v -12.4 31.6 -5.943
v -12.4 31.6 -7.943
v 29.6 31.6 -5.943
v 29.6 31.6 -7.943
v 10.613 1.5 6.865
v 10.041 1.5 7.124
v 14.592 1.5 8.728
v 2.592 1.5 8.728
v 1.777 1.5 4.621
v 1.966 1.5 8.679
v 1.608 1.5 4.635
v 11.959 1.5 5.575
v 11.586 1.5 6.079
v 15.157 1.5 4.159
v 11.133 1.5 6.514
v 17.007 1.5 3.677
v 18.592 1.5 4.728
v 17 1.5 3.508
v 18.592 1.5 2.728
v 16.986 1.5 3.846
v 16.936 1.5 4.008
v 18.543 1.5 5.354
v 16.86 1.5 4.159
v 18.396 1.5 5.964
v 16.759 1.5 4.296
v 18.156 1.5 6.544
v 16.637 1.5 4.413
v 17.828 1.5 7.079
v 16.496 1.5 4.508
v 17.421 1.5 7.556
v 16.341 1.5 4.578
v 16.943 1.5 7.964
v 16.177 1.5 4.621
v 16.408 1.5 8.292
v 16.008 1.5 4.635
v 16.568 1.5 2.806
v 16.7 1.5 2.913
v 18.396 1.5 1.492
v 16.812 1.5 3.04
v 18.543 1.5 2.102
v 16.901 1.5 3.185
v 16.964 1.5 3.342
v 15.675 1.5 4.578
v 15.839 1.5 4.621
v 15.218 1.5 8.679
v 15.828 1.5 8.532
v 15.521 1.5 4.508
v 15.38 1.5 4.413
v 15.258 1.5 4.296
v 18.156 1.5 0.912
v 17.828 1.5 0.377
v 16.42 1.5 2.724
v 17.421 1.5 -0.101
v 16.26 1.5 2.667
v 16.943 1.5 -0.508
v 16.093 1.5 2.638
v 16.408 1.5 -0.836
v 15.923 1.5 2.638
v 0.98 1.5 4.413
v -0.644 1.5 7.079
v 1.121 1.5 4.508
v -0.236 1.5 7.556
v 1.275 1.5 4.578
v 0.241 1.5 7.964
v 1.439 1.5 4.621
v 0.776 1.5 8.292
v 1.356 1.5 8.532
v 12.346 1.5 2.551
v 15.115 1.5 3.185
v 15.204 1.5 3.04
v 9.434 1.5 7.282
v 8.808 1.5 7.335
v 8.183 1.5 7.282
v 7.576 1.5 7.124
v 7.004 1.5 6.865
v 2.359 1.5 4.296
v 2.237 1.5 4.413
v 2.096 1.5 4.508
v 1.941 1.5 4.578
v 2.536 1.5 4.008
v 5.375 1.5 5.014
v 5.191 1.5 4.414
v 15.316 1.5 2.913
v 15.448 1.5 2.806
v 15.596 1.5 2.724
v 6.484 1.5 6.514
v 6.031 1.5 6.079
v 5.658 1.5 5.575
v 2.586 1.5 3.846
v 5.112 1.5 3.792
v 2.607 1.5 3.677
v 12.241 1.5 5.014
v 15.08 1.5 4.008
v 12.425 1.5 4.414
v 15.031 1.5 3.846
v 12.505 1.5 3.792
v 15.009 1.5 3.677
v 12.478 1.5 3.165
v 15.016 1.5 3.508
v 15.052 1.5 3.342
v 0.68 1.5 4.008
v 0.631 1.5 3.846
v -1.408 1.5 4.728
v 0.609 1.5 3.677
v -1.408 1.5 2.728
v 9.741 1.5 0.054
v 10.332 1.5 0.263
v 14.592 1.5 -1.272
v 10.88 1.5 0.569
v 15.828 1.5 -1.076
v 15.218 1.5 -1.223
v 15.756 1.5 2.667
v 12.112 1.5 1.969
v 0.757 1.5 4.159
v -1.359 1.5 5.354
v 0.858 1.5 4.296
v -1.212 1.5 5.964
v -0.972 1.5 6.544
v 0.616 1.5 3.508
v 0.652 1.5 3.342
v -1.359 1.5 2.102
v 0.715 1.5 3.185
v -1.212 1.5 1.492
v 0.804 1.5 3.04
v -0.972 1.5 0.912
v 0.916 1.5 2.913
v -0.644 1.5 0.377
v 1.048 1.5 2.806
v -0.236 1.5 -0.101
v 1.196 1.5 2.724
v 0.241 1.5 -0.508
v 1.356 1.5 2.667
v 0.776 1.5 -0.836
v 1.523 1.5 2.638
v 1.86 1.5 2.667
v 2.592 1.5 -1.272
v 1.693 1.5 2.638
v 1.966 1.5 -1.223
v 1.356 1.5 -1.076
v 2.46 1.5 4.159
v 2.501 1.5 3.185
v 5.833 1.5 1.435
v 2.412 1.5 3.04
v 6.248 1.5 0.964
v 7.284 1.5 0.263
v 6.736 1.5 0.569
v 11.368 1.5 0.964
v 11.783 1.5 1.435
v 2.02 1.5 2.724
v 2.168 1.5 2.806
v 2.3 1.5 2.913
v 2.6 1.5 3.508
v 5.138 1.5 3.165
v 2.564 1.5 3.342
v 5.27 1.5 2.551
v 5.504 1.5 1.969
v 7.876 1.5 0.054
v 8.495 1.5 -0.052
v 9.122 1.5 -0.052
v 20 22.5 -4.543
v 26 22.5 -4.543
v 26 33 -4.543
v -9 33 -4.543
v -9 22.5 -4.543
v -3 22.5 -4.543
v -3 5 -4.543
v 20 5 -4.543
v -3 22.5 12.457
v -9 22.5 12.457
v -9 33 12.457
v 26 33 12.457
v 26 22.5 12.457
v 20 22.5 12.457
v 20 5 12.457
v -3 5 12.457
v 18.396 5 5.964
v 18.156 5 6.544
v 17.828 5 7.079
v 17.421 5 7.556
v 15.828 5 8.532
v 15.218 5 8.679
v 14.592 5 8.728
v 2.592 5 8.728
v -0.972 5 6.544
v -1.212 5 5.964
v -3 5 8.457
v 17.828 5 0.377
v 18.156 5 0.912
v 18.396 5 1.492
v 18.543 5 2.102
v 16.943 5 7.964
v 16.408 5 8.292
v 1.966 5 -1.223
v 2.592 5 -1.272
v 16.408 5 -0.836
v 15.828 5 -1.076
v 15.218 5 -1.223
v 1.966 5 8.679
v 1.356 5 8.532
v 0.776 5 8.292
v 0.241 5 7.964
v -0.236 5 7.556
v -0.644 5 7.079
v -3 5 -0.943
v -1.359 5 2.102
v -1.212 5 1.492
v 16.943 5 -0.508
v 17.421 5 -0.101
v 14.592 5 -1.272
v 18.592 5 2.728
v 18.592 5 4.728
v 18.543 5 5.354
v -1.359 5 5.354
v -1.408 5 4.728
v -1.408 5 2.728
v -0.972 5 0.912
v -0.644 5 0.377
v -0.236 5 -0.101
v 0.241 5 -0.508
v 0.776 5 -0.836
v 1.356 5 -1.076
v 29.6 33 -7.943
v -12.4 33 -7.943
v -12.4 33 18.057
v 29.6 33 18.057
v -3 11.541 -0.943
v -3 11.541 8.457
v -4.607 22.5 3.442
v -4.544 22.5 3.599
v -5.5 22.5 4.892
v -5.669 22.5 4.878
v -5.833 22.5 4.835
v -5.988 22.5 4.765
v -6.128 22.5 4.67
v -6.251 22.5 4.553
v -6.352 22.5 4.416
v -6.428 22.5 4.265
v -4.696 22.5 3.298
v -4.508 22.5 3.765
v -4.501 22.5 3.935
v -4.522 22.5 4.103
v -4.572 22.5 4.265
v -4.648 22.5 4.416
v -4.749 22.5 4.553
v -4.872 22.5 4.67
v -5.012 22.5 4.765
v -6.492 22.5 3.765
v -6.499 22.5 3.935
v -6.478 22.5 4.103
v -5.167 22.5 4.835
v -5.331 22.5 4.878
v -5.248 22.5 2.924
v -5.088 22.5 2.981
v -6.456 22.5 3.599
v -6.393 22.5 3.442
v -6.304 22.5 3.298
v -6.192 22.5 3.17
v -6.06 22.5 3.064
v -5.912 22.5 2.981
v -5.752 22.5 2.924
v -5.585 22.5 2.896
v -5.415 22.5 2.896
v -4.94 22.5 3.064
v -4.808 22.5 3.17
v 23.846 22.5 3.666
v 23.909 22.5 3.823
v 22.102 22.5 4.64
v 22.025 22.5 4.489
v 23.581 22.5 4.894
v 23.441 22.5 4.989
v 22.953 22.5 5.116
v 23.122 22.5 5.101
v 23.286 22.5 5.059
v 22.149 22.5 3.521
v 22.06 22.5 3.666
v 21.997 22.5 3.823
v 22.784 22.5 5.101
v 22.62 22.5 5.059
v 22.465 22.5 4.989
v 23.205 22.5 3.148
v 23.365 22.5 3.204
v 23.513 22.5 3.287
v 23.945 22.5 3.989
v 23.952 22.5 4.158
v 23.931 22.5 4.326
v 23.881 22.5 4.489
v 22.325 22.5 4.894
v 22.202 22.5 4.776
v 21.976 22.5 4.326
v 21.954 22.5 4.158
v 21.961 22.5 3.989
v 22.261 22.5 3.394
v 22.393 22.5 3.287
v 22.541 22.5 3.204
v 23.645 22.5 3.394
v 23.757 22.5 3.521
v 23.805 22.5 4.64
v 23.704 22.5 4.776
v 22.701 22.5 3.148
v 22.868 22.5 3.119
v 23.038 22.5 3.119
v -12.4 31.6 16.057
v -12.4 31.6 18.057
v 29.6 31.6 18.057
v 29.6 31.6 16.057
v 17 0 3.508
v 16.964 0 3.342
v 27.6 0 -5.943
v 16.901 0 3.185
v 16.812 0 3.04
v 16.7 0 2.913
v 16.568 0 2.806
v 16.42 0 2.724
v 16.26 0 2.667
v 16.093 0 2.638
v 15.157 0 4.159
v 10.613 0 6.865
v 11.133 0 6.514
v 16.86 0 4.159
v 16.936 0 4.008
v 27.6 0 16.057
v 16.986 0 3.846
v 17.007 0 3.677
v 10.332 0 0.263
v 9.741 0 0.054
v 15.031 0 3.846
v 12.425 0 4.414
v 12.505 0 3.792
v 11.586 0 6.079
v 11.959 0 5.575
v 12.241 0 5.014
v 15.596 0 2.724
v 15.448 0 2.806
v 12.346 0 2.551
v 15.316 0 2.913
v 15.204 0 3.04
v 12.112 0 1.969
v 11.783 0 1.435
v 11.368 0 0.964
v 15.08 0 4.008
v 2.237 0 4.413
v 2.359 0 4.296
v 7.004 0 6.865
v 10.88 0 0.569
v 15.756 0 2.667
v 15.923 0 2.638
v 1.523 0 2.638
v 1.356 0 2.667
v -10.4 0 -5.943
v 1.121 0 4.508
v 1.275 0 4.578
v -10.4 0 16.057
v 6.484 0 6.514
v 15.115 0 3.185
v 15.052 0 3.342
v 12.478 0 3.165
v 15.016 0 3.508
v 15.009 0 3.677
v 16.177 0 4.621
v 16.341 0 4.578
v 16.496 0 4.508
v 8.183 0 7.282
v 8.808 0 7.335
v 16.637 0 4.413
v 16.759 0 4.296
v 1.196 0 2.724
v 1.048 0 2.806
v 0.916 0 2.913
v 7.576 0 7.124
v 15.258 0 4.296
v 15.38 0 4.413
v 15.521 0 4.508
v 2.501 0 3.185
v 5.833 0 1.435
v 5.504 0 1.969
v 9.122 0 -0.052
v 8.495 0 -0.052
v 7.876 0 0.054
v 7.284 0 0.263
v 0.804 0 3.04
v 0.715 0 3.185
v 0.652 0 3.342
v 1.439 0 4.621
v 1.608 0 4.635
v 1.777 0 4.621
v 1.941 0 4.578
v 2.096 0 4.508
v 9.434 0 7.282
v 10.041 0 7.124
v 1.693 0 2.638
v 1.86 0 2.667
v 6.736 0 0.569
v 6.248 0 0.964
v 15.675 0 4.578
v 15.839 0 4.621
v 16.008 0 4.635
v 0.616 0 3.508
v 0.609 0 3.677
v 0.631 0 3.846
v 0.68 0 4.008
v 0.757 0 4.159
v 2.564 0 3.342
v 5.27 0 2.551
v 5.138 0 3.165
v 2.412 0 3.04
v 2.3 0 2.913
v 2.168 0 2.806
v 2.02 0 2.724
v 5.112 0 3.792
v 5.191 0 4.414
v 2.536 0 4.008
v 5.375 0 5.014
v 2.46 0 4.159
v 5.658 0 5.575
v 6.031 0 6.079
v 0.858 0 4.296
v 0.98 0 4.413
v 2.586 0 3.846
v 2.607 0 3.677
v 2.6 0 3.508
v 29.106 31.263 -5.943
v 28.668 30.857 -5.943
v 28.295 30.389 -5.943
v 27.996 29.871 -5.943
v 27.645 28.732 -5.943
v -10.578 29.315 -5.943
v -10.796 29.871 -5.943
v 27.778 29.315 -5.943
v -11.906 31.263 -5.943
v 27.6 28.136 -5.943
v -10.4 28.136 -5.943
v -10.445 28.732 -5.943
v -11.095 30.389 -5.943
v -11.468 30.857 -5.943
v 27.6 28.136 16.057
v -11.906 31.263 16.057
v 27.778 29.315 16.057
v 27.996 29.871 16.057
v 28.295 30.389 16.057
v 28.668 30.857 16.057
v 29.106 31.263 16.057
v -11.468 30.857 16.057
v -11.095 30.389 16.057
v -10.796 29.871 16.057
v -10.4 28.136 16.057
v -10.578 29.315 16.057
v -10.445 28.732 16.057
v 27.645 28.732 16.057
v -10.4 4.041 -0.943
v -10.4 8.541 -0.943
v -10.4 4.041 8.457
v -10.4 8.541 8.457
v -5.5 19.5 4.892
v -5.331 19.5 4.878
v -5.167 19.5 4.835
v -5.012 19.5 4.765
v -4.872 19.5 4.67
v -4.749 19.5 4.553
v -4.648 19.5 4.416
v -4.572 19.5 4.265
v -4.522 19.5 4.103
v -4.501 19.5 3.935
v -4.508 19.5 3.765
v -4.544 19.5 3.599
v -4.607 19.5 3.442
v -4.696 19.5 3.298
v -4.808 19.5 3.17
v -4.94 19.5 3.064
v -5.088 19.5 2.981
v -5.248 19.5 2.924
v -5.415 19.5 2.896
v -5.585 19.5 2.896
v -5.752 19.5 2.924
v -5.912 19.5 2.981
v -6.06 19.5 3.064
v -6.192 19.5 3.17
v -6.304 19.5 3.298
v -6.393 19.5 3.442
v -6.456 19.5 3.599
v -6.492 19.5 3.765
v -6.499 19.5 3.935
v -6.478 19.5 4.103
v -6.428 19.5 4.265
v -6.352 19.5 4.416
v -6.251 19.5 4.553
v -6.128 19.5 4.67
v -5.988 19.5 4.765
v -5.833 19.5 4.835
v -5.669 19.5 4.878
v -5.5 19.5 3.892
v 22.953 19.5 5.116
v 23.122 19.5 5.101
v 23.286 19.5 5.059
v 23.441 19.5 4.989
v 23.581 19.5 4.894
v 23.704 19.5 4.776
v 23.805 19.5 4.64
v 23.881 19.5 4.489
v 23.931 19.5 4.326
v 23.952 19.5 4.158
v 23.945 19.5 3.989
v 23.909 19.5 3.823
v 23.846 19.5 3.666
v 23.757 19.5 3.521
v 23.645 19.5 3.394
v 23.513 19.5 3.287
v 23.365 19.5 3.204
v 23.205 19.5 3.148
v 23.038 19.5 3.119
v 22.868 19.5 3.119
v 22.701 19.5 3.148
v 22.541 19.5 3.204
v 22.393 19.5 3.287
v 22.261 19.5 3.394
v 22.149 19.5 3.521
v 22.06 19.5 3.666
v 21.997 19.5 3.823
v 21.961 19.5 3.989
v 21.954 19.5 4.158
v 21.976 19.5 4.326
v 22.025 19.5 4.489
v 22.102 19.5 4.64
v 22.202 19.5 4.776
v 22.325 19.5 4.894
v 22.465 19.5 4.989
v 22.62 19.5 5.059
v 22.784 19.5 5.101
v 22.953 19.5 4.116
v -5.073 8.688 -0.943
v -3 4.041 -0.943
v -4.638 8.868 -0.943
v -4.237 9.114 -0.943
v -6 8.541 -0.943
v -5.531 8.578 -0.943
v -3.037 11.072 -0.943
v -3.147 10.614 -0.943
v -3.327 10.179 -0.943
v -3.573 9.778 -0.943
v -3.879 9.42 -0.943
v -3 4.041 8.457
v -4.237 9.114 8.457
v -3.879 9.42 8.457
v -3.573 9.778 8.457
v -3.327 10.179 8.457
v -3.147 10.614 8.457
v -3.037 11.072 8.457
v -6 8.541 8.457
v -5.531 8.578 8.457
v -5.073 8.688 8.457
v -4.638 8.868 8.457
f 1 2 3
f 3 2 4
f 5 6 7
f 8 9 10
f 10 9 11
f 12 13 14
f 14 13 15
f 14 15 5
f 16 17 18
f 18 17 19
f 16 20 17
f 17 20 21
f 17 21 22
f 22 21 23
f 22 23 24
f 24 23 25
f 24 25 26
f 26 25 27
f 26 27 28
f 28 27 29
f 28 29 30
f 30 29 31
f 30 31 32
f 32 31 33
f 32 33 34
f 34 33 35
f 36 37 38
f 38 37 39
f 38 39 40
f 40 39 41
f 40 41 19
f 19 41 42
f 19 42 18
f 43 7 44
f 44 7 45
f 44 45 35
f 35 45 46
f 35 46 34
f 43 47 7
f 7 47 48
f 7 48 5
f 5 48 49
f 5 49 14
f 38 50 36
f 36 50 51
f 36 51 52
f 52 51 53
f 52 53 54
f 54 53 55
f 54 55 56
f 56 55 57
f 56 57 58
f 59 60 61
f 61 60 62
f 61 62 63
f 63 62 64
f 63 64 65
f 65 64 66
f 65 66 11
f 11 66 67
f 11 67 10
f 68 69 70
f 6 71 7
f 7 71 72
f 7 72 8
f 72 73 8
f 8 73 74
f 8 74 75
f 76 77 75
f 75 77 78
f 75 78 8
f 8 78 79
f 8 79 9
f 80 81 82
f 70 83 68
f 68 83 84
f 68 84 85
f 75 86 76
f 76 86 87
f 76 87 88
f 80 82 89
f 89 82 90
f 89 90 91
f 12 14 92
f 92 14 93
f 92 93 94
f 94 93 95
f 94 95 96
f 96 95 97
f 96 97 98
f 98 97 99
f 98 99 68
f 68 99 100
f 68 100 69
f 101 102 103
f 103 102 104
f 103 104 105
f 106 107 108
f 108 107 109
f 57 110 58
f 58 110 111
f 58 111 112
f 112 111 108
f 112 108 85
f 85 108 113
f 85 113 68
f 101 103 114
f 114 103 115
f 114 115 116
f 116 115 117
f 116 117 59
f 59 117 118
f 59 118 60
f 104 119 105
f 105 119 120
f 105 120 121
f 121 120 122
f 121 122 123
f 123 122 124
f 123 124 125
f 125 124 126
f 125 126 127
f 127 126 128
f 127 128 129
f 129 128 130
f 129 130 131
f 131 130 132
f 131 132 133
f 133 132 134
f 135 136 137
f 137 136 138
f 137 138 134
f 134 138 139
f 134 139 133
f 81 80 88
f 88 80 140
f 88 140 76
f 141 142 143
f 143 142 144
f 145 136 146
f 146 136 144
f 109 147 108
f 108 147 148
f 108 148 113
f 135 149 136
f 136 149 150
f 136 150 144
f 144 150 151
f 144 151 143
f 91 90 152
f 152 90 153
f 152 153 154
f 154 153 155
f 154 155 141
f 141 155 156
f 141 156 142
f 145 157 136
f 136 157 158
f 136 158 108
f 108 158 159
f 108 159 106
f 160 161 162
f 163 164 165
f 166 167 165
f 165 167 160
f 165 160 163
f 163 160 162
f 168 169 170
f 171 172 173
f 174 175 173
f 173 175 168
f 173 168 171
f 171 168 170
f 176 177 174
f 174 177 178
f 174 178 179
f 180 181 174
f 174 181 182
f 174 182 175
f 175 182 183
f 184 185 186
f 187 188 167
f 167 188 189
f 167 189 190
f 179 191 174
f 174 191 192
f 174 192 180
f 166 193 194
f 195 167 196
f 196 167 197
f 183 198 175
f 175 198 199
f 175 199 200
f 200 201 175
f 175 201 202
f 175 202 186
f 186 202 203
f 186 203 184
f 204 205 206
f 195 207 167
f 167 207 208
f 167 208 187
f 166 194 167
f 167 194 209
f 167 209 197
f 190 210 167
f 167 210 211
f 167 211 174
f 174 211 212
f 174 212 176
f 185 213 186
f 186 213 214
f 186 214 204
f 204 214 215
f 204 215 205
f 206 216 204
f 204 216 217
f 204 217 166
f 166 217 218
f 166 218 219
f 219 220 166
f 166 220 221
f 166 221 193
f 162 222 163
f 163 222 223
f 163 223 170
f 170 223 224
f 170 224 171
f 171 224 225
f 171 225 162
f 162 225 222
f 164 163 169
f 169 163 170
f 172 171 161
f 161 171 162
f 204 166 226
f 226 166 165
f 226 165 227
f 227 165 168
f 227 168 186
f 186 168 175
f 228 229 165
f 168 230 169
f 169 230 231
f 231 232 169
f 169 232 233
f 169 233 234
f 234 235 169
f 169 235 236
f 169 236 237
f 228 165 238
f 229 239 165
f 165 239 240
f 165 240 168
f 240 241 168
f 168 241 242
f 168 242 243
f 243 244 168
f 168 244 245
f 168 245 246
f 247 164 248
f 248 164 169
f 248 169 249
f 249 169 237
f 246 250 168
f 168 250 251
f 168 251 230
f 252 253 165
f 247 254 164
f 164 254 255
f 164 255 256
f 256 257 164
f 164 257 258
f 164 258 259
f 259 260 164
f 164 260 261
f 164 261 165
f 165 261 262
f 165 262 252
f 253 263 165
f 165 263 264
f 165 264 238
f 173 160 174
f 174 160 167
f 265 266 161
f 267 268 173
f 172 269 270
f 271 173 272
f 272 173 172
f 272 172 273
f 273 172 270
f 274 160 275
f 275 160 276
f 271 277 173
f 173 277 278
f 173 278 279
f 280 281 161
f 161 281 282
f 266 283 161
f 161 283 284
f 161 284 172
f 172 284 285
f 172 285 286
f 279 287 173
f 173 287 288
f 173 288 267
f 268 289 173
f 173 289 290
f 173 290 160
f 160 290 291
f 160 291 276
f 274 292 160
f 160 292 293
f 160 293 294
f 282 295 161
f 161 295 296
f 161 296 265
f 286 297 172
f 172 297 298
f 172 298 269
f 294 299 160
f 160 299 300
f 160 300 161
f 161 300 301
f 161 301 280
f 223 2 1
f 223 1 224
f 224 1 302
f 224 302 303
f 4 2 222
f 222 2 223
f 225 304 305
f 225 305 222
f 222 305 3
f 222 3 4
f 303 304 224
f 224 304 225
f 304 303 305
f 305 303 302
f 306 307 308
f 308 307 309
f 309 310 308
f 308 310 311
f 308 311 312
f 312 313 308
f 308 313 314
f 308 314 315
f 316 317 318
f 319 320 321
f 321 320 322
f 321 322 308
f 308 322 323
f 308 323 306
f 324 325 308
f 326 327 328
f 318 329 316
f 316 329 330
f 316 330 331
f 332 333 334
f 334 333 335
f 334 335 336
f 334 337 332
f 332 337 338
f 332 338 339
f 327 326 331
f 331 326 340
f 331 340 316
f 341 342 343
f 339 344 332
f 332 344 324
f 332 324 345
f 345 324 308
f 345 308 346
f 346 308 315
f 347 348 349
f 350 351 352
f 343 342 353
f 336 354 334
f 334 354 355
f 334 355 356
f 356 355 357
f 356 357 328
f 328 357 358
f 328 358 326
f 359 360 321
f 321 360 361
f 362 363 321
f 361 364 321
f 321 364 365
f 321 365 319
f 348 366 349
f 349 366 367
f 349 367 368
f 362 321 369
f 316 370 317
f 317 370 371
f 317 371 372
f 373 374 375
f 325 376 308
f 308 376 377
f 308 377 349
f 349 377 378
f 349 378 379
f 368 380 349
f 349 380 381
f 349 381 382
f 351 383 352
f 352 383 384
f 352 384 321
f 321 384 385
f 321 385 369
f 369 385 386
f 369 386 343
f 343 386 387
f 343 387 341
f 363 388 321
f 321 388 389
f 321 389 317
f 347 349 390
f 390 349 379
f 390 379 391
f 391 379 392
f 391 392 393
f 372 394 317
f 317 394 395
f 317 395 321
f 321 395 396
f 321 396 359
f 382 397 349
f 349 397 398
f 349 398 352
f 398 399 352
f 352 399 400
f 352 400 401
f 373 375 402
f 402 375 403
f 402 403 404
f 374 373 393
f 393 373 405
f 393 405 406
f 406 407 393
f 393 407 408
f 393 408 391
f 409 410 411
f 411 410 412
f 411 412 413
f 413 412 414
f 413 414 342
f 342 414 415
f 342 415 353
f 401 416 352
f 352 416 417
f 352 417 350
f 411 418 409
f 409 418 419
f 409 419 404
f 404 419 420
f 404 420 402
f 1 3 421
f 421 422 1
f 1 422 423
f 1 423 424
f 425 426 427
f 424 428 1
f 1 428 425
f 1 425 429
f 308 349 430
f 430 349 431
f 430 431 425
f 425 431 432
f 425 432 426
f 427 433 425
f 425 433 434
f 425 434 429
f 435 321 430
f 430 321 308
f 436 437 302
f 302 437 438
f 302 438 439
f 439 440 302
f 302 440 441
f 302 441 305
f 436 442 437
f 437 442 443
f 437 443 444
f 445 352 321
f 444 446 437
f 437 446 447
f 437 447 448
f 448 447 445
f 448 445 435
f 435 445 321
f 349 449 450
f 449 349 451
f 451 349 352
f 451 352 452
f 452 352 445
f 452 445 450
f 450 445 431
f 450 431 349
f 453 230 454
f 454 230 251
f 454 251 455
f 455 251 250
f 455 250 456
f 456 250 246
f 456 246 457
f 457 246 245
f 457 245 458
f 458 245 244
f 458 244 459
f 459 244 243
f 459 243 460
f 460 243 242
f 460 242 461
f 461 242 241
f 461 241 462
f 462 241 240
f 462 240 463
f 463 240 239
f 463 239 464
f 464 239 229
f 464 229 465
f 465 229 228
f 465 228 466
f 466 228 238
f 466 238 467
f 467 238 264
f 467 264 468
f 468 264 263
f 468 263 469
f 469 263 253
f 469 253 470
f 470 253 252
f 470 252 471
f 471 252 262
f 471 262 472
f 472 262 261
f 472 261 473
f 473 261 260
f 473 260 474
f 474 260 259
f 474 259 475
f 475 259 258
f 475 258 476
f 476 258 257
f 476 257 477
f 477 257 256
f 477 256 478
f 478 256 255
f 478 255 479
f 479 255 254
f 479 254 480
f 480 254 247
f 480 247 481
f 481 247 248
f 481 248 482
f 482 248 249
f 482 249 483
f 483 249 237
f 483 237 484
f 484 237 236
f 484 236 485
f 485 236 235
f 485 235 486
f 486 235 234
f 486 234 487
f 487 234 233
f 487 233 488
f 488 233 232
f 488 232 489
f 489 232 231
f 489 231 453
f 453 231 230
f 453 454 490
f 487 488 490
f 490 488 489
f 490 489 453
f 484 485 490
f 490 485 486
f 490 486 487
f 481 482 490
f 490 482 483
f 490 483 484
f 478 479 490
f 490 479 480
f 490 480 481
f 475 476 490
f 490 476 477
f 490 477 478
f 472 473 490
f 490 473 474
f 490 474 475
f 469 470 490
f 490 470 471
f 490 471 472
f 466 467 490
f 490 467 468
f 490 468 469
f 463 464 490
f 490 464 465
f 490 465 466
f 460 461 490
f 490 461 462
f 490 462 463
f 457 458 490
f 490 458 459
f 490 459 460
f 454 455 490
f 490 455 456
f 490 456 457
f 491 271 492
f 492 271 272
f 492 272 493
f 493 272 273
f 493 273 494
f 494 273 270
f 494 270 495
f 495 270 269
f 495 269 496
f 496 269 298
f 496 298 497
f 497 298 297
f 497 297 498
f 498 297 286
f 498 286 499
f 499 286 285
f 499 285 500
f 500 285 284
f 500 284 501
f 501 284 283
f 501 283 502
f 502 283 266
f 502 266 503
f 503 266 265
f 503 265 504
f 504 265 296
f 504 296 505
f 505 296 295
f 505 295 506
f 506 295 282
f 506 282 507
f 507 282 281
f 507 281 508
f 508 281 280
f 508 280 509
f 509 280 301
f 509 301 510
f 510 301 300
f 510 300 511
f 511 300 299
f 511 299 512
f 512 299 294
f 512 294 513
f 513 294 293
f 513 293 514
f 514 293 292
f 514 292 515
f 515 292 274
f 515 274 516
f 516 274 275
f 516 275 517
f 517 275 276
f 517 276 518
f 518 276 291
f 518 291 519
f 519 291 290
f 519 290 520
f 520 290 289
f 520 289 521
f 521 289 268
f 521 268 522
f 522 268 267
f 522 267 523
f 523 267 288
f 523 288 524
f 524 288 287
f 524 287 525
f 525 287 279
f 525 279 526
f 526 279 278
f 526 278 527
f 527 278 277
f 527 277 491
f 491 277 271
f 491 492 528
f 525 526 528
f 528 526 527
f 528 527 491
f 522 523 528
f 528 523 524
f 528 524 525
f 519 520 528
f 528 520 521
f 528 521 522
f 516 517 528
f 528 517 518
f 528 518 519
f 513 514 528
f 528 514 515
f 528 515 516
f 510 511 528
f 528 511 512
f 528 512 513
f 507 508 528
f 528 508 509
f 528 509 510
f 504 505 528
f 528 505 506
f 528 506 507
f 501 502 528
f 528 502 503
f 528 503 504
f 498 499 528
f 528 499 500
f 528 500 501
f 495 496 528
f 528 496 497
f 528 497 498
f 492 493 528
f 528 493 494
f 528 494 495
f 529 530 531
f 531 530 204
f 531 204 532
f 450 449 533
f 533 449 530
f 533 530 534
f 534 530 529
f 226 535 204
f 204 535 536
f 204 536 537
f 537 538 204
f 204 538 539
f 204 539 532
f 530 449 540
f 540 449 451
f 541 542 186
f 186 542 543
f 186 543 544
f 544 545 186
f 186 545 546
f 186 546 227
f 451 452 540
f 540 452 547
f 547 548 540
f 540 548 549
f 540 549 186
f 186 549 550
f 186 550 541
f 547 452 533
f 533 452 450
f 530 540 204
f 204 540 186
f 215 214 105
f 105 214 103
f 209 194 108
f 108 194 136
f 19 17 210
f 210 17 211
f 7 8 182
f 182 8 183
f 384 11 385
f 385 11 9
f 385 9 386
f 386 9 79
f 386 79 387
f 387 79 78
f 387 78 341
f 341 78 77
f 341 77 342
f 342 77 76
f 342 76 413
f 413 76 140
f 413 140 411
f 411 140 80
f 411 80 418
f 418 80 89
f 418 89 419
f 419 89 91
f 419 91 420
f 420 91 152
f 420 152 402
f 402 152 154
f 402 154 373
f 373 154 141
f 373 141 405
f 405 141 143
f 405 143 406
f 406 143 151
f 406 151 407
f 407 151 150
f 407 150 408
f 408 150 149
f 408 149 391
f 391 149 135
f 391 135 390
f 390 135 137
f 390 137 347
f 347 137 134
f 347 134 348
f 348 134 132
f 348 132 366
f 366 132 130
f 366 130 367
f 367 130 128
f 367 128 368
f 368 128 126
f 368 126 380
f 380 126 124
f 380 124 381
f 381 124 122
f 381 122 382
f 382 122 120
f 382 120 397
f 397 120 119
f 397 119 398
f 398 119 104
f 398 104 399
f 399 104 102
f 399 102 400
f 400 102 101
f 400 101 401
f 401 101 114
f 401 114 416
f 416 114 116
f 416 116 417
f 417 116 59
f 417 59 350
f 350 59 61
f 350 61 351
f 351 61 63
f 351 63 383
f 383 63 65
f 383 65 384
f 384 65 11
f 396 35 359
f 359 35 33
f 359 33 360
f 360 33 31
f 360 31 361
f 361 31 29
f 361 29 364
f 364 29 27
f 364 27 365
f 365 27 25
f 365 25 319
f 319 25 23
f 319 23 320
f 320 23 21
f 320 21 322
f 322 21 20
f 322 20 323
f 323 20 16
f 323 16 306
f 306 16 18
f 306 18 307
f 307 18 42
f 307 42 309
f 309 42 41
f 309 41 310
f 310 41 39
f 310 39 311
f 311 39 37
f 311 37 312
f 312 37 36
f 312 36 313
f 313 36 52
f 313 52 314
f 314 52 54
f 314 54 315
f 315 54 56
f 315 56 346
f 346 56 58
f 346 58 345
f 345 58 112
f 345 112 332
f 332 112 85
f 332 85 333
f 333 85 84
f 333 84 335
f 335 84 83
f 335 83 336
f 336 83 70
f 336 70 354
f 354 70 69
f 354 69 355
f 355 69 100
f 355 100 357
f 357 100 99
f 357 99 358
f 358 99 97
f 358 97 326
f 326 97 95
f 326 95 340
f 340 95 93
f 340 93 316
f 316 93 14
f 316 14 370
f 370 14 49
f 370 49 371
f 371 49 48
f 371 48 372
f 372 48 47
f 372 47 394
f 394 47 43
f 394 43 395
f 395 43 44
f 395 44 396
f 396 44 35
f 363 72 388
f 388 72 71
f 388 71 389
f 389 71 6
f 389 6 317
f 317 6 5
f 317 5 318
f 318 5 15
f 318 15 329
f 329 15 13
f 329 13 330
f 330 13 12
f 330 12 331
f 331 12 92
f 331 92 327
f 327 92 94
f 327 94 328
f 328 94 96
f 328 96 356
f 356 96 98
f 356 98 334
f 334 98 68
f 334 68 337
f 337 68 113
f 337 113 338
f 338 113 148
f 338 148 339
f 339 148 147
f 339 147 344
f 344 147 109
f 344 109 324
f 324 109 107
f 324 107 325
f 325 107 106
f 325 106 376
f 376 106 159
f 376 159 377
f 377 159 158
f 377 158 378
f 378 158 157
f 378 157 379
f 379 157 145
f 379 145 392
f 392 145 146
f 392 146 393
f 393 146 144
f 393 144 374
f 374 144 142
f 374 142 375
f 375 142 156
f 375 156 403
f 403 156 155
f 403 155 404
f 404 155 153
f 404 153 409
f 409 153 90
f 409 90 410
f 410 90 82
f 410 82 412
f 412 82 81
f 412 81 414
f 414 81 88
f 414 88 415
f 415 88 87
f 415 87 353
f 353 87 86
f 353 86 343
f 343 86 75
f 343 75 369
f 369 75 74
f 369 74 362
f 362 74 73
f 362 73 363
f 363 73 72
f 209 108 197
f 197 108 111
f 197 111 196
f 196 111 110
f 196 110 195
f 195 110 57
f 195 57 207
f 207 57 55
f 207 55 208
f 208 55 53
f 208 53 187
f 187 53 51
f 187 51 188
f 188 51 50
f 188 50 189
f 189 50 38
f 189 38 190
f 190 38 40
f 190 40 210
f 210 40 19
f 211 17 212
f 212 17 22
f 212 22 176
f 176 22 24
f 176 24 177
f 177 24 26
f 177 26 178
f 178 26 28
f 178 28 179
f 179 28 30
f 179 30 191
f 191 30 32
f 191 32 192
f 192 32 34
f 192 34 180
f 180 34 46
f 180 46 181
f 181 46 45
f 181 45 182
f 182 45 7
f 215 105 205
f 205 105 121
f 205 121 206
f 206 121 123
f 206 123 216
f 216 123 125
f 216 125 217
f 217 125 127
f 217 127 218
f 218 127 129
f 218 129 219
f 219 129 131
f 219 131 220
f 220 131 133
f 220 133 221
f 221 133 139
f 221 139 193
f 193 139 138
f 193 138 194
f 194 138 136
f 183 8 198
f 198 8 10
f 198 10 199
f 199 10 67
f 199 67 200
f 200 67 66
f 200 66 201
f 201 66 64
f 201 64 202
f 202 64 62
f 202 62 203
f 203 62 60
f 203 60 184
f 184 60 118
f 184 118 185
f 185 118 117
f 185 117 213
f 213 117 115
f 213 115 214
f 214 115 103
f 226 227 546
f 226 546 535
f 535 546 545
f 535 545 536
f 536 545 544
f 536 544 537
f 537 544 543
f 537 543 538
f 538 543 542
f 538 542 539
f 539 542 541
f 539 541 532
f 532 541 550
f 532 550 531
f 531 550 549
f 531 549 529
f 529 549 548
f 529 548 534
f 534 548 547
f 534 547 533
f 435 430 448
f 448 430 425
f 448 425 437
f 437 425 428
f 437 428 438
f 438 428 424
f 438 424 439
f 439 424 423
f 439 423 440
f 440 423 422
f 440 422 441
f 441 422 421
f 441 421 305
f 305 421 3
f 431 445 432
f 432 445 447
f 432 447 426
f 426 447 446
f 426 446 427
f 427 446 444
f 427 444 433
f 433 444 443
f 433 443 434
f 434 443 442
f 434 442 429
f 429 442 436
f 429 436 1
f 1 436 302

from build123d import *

# Parameters (mm, degrees)
SKETCH1_W           = 38
SKETCH1_H           = 22
BOSS_EXTRUDE1_DEPTH = 33
SKETCH2_W           = 35
SKETCH2_H           = 17
CUT_EXTRUDE1_DEPTH  = 28
SKETCH3_W           = 6
SKETCH3_H           = 17
BOSS_EXTRUDE2_DEPTH = 17.5
SKETCH4_W           = 42
SKETCH4_H           = 26
SKETCH4_W_2         = 38
SKETCH4_H_2         = 22
EXTRUDE_THIN2_DEPTH = 1.4
SKETCH5_R           = 1
CUT_EXTRUDE2_DEPTH  = 3
SKETCH6_R           = 1
CUT_EXTRUDE3_DEPTH  = 3
SKETCH7_W           = 9.4
SKETCH7_H           = 4.5
CUT_EXTRUDE4_DEPTH  = 10
SKETCH8_W           = 20
SKETCH8_H           = 10
CUT_EXTRUDE5_DEPTH  = 3.5
SKETCH9_R           = 3.7
SKETCH9_R_2         = 1
CUT_EXTRUDE6_DEPTH  = 47.845174865
FILLET1_R           = 4
FILLET2_R           = 3
FILLET3_R           = 4


with BuildPart() as part:
    # Sketch1 → Boss-Extrude1 (new body)
    with BuildSketch(Plane(origin=(0, 0, 0), x_dir=(1, 0, 0), z_dir=(0, 1, 0))):
        with Locations((8.6, -5.057142857)):
            Rectangle(SKETCH1_W, SKETCH1_H)
    extrude(amount=BOSS_EXTRUDE1_DEPTH)

    # Sketch2 → Cut-Extrude1 (cut)
    with BuildSketch(Plane(origin=(0, 33, 0), x_dir=(1, 0, 0), z_dir=(0, 1, 0))):
        with Locations((8.5, -3.957142857)):
            Rectangle(SKETCH2_W, SKETCH2_H)
    extrude(amount=-CUT_EXTRUDE1_DEPTH, mode=Mode.SUBTRACT)

    # Sketch3 → Boss-Extrude2 (add)
    with BuildSketch(Plane(origin=(0, 5, 0), x_dir=(1, 0, 0), z_dir=(0, 1, 0))):
        with Locations((-6, -3.957142857)):
            Rectangle(SKETCH3_W, SKETCH3_H)
        with Locations((23, -3.957142857)):
            Rectangle(SKETCH3_W, SKETCH3_H)
    extrude(amount=BOSS_EXTRUDE2_DEPTH)

    # Sketch4 → Extrude-Thin2 (add)
    with BuildSketch(Plane(origin=(0, 33, 0), x_dir=(1, 0, 0), z_dir=(0, 1, 0))):
        with Locations((8.6, -5.057142857)):
            Rectangle(SKETCH4_W, SKETCH4_H)
        with Locations((8.6, -5.057142857)):
            Rectangle(SKETCH4_W_2, SKETCH4_H_2, mode=Mode.SUBTRACT)
    extrude(amount=-EXTRUDE_THIN2_DEPTH)

    # Sketch5 → Cut-Extrude2 (cut)
    with BuildSketch(Plane(origin=(0, 22.5, 0), x_dir=(1, 0, 0), z_dir=(0, 1, 0))):
        with Locations(Location((-5.5, -3.892148731, 0), (0, 0, 270))):
            Circle(SKETCH5_R)
    extrude(amount=-CUT_EXTRUDE2_DEPTH, mode=Mode.SUBTRACT)

    # Sketch6 → Cut-Extrude3 (cut)
    with BuildSketch(Plane(origin=(0, 22.5, 0), x_dir=(1, 0, 0), z_dir=(0, 1, 0))):
        with Locations(Location((22.953148274, -4.115727136, 0), (0, 0, 270))):
            Circle(SKETCH6_R)
    extrude(amount=-CUT_EXTRUDE3_DEPTH, mode=Mode.SUBTRACT)

    # Sketch7 → Cut-Extrude4 (cut)
    with BuildSketch(Plane(origin=(-3, 0, 0), x_dir=(0, 0, -1), z_dir=(1, 0, 0))):
        with Locations((-3.757142857, 6.291369126)):
            Rectangle(SKETCH7_W, SKETCH7_H)
    extrude(amount=-CUT_EXTRUDE4_DEPTH, mode=Mode.SUBTRACT)

    # Sketch8 → Cut-Extrude5 (cut)
    with BuildSketch(Plane(origin=(0, 5, 0), x_dir=(1, 0, 0), z_dir=(0, 1, 0))):
        with Locations((8.592117784, -3.72787339)):
            Rectangle(SKETCH8_W, SKETCH8_H)
    extrude(amount=-CUT_EXTRUDE5_DEPTH, mode=Mode.SUBTRACT)

    # Sketch9 → Cut-Extrude6 (cut, through all)
    with BuildSketch(Plane(origin=(0, 1.5, 0), x_dir=(1, 0, 0), z_dir=(0, 1, 0))):
        with Locations(Location((8.808284604, -3.634888569, 0), (0, 0, 270))):
            Circle(SKETCH9_R)
        with Locations(Location((1.608284604, -3.634888569, 0), (0, 0, 270))):
            Circle(SKETCH9_R_2)
        with Locations(Location((16.008284604, -3.634888569, 0), (0, 0, 270))):
            Circle(SKETCH9_R_2)
    extrude(amount=-CUT_EXTRUDE6_DEPTH, mode=Mode.SUBTRACT)

    # Fillet1
    fillet1_edges = [part.edges().sort_by_distance(p)[0] for p in [
        (-1.407882216, 3.25, 8.72787339),
        (-1.407882216, 3.25, -1.27212661),
        (18.592117784, 3.25, -1.27212661),
        (18.592117784, 3.25, 8.72787339),
    ]]
    fillet(fillet1_edges, radius=FILLET1_R)

    # Fillet2
    fillet2_edges = [part.edges().sort_by_distance(p)[0] for p in [
        (-3, 8.541369126, 3.757142857),
    ]]
    fillet(fillet2_edges, radius=FILLET2_R)

    # Fillet3
    # the kernel refuses this fillet: 4 mm, written as the material it adds along each edge
    with BuildSketch(Plane(origin=(-10.4, 31.6, 16.057142857), x_dir=(-1, 0, 0), z_dir=(0, 0, -1)), Plane(origin=(27.6, 31.6, -5.942857143), x_dir=(1, 0, 0), z_dir=(0, 0, 1))) as fillet3_piece_1:
        with BuildLine():
            CenterArc((4, -3.464101615), FILLET3_R, 120, 60)
            Line((0, -3.464101615), (-0.08, -3.464101615))
            Line((-0.08, -3.464101615), (-0.08, 0))
            Line((-0.08, 0), (0, 0.08))
            ThreePointArc((0, 0.08), (1, 0.08), (1.96, 0.069282032))
            Line((1.96, 0.069282032), (2, 0))
        make_face()
    extrude(amount=22)


solid = part.part
